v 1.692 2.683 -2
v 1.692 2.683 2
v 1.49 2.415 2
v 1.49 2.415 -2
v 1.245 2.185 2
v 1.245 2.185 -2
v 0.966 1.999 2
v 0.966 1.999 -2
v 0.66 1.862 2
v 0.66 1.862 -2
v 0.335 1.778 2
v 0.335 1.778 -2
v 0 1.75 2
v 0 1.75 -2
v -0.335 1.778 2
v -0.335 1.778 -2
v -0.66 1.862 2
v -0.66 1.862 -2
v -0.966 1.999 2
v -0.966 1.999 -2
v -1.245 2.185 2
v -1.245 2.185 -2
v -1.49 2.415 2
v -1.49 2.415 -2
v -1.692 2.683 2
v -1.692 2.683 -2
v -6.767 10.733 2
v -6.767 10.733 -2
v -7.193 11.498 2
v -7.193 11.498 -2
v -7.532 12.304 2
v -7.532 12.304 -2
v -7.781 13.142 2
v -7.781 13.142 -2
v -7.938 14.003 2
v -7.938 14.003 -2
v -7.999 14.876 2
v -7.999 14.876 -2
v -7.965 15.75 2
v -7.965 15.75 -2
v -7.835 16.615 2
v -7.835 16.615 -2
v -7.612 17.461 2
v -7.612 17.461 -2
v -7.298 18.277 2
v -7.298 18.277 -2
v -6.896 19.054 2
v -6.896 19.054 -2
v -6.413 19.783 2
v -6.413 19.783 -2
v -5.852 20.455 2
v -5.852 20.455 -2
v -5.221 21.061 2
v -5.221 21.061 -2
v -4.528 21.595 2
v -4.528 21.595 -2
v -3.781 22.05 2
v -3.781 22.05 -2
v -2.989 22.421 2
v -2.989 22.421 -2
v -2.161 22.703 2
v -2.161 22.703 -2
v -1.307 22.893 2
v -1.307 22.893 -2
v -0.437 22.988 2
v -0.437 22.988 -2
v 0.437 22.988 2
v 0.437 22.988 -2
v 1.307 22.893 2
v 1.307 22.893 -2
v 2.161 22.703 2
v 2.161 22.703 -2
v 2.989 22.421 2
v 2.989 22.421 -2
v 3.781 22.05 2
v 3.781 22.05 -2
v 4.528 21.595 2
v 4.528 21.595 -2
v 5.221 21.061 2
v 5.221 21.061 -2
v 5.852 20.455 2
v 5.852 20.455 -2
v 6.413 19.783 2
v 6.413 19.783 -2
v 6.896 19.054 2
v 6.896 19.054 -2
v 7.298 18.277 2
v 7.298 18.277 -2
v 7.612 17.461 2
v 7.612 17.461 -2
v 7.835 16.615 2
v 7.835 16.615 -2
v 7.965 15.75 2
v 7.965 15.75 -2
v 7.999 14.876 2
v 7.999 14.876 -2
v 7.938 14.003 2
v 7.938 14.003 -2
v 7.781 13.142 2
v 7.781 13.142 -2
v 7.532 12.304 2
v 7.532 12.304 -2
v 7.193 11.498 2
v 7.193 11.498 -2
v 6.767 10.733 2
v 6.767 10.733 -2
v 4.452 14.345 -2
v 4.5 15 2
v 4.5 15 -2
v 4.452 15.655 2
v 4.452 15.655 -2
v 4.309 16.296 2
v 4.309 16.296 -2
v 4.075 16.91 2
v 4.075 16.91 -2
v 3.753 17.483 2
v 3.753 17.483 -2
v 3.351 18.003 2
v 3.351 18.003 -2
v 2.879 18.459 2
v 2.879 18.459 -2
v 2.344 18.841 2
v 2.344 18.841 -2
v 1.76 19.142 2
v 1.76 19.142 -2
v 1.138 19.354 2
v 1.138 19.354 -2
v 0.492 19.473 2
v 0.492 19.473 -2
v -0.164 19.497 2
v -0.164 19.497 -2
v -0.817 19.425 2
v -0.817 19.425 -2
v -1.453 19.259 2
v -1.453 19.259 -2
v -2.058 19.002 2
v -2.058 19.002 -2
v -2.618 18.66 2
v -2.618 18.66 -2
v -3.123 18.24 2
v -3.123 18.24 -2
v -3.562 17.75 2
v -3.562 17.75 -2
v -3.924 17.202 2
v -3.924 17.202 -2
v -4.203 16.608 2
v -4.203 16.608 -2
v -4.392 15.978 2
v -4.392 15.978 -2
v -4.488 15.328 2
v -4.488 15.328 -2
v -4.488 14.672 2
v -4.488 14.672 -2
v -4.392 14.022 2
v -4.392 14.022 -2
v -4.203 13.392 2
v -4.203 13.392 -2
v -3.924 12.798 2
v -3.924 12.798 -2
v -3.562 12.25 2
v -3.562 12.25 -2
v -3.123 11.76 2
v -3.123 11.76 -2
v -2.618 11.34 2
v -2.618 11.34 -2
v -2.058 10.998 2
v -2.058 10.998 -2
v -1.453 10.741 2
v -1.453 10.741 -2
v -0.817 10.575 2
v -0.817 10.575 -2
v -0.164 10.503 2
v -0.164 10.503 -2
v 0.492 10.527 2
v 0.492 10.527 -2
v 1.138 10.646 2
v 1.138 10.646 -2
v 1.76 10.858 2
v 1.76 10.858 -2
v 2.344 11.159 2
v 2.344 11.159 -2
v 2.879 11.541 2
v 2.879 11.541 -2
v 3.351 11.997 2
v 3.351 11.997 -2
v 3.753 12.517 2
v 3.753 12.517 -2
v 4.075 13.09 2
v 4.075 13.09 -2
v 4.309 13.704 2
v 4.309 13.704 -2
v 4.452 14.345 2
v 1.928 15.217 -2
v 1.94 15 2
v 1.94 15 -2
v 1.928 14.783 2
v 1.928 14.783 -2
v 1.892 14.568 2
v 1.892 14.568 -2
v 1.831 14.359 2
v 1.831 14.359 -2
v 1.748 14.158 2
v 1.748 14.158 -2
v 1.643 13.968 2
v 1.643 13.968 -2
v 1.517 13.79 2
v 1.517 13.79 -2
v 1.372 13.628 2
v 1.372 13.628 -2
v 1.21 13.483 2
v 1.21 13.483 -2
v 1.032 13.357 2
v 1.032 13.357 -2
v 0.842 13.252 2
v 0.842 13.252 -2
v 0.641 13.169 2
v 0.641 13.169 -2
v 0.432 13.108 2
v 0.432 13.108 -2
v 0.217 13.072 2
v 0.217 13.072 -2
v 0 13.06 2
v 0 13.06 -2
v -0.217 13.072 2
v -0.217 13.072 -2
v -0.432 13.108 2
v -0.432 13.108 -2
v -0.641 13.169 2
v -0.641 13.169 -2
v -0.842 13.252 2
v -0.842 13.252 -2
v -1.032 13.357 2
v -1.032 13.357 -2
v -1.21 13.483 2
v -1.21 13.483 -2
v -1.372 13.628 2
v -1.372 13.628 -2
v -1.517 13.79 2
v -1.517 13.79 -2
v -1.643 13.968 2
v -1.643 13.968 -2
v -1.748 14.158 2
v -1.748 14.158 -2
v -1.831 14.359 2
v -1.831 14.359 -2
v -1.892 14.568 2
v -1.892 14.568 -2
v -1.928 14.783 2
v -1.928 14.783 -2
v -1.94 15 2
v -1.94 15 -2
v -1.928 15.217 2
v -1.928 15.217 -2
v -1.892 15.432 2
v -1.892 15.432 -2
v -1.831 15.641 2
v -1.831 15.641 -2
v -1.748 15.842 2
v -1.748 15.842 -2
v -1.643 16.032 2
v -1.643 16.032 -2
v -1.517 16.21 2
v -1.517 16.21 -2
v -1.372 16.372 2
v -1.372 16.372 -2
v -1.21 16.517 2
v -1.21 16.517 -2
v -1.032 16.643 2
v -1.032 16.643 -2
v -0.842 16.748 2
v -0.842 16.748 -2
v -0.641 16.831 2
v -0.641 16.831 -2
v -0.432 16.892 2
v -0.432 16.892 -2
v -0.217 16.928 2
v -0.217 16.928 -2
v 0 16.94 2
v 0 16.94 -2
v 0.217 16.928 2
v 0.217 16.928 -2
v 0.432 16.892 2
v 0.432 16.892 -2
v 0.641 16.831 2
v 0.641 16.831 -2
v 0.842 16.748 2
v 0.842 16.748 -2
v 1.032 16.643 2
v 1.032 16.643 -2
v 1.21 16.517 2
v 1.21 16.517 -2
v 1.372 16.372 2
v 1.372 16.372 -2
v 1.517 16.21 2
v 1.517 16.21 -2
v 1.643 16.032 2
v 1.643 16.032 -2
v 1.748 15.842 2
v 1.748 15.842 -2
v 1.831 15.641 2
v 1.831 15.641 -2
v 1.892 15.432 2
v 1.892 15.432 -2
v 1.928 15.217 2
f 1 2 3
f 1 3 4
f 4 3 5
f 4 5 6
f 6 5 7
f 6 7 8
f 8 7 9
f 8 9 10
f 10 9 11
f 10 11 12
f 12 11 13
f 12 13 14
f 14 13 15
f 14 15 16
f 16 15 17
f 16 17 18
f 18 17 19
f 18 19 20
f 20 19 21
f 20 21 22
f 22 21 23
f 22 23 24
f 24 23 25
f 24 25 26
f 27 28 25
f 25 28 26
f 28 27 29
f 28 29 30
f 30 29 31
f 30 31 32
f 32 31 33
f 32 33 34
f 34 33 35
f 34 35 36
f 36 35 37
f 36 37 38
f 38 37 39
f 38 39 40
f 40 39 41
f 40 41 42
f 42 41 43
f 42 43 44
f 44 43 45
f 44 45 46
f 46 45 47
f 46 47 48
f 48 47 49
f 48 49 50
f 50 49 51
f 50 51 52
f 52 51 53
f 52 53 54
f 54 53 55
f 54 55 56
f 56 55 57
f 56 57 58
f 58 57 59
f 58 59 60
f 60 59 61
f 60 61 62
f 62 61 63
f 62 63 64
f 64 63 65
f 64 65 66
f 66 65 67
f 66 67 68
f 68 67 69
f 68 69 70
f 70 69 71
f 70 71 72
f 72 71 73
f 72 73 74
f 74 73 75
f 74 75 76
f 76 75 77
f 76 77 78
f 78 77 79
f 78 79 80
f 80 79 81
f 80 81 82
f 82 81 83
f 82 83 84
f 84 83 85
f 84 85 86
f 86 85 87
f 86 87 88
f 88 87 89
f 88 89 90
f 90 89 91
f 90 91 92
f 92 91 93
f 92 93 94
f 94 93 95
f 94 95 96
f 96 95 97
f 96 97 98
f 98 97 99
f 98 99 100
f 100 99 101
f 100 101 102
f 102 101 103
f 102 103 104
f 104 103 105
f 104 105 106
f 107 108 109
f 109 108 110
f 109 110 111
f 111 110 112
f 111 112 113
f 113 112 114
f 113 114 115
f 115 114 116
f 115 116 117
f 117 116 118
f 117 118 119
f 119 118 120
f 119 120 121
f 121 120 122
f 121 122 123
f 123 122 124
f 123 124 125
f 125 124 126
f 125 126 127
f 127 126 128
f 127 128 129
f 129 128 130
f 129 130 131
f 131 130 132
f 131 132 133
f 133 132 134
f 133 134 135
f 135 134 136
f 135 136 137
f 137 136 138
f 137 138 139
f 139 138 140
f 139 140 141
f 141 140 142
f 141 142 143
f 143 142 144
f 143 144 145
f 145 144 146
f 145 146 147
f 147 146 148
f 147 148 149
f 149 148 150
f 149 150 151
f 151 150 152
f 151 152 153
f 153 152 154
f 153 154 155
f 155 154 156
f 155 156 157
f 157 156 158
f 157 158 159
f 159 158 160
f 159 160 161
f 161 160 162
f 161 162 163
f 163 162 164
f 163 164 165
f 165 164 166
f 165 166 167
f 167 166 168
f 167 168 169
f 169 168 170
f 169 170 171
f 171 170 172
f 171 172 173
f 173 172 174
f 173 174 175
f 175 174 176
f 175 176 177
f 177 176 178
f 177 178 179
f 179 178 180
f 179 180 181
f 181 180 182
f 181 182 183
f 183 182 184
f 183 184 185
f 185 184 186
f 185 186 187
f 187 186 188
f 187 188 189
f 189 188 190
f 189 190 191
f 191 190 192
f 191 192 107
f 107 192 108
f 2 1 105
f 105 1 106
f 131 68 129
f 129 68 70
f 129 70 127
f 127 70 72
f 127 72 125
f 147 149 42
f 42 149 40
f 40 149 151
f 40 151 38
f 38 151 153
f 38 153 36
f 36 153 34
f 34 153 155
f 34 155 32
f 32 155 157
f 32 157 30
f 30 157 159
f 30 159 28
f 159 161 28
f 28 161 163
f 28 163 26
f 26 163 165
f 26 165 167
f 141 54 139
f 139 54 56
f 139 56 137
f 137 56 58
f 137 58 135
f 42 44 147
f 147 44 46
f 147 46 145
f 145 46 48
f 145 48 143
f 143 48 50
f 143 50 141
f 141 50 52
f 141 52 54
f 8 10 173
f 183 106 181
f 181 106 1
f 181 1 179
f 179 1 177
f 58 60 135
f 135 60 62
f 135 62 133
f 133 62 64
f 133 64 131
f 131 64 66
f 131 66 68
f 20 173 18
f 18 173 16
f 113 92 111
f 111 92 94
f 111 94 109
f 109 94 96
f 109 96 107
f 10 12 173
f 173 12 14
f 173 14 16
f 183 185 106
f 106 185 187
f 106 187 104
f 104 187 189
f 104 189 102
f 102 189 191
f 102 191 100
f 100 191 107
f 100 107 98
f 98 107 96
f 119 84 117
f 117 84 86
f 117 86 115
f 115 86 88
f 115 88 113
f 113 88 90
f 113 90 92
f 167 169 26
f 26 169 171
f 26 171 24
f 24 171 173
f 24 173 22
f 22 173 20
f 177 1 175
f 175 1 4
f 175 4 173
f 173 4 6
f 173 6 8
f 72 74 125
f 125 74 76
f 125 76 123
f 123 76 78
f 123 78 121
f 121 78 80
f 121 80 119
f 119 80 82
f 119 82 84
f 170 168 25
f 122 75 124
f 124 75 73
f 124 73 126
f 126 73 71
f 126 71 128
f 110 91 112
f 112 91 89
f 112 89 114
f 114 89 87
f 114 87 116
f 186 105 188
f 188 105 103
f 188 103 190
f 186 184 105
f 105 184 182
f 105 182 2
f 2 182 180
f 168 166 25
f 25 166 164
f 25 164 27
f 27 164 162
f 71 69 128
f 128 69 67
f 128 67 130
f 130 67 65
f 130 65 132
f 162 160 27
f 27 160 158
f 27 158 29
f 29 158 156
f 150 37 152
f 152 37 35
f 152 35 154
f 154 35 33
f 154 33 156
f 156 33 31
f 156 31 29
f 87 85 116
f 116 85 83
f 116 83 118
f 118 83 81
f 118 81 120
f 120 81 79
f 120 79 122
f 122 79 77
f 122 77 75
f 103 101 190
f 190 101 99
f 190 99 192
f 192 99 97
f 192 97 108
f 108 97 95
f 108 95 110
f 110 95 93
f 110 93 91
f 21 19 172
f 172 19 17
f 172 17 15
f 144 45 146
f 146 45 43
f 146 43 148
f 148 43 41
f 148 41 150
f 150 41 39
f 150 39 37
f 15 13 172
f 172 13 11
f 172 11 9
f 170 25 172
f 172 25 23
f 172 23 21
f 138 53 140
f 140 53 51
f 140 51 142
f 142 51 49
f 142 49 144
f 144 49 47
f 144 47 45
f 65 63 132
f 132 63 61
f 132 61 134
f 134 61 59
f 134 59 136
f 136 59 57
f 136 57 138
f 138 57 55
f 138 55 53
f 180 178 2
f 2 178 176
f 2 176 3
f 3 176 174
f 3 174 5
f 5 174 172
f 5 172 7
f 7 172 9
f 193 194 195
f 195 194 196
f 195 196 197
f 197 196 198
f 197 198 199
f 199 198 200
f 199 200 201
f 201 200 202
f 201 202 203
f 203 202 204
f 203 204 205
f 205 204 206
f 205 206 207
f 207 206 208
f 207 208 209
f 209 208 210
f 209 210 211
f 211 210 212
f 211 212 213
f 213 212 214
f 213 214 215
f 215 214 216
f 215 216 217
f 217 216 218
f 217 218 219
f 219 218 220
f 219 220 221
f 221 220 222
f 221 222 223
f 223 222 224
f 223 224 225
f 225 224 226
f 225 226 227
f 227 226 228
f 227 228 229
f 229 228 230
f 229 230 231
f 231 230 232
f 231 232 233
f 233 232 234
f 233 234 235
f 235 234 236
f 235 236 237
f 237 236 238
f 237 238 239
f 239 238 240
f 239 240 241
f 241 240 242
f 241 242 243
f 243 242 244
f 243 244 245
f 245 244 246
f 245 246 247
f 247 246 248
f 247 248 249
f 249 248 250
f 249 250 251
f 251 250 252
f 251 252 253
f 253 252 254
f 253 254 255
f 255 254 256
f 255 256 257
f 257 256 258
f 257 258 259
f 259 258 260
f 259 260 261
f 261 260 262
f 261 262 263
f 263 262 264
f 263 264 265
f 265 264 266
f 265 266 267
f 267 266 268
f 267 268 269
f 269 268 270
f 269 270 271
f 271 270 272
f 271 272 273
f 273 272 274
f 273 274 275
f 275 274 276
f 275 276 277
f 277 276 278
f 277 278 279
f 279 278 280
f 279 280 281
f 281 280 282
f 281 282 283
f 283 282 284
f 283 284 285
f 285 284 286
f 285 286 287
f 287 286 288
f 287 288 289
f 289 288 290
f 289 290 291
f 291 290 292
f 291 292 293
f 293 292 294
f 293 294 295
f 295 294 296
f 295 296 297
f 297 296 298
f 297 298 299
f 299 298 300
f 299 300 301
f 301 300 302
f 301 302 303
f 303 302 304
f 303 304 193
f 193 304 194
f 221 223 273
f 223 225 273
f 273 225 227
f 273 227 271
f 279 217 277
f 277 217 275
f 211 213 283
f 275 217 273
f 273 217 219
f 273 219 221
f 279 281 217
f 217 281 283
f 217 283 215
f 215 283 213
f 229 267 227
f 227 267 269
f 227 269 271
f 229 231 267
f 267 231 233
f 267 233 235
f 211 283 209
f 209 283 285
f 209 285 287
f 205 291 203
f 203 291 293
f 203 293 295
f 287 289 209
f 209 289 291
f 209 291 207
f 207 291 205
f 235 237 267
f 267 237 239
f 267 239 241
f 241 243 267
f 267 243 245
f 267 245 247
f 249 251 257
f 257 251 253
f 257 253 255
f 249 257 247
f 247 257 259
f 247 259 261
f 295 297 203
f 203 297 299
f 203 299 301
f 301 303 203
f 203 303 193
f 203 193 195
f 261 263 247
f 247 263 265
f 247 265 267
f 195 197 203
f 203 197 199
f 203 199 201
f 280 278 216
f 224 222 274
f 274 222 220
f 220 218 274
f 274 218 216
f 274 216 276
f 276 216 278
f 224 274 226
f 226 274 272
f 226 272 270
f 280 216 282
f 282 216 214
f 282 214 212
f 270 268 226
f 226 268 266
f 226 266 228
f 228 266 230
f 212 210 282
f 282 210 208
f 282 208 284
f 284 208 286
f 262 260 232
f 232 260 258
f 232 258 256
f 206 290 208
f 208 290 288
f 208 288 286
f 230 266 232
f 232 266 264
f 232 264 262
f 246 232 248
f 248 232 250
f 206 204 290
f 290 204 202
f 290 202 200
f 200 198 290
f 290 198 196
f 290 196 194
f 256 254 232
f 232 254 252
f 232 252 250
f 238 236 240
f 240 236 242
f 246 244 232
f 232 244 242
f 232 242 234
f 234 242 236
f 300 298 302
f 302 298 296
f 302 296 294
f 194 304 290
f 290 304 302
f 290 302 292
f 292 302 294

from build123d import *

# Parameters (mm, degrees)
EXTRUDE_1_DEPTH        = 2
EXTRUDE_1_DEPTH_BACK   = 2
SKETCH_2_R             = 4.5
EXTRUDE_1_2_DEPTH      = 2
EXTRUDE_1_2_DEPTH_BACK = 2
SKETCH_2_R_2           = 1.940299118


with BuildPart() as part:
    # 草圖2 → 填料-伸長1 (new, two sides: drawn at the far end of the back side and taken through both)
    with BuildSketch(Plane.XY.offset(-EXTRUDE_1_DEPTH_BACK)):
        with BuildLine():
            ThreePointArc((6.767241355, 10.733333333), (0, 23), (-6.767241355, 10.733333333))
            Line((-6.767241355, 10.733333333), (-1.691810339, 2.683333333))
            ThreePointArc((-1.691810339, 2.683333333), (0, 1.75), (1.691810339, 2.683333333))
            Line((1.691810339, 2.683333333), (6.767241355, 10.733333333))
        make_face()
        with Locations((0, 15)):
            Circle(SKETCH_2_R, mode=Mode.SUBTRACT)
    extrude(amount=EXTRUDE_1_DEPTH + EXTRUDE_1_DEPTH_BACK)


with BuildPart() as body_2:
    # 草圖2 → Extrude 1 2 (new, two sides: drawn at the far end of the back side and taken through both)
    with BuildSketch(Plane.XY.offset(-EXTRUDE_1_2_DEPTH_BACK)):
        with Locations((0, 15)):
            Circle(SKETCH_2_R_2)
    extrude(amount=EXTRUDE_1_2_DEPTH + EXTRUDE_1_2_DEPTH_BACK)


solid = Compound([part.part, body_2.part])
